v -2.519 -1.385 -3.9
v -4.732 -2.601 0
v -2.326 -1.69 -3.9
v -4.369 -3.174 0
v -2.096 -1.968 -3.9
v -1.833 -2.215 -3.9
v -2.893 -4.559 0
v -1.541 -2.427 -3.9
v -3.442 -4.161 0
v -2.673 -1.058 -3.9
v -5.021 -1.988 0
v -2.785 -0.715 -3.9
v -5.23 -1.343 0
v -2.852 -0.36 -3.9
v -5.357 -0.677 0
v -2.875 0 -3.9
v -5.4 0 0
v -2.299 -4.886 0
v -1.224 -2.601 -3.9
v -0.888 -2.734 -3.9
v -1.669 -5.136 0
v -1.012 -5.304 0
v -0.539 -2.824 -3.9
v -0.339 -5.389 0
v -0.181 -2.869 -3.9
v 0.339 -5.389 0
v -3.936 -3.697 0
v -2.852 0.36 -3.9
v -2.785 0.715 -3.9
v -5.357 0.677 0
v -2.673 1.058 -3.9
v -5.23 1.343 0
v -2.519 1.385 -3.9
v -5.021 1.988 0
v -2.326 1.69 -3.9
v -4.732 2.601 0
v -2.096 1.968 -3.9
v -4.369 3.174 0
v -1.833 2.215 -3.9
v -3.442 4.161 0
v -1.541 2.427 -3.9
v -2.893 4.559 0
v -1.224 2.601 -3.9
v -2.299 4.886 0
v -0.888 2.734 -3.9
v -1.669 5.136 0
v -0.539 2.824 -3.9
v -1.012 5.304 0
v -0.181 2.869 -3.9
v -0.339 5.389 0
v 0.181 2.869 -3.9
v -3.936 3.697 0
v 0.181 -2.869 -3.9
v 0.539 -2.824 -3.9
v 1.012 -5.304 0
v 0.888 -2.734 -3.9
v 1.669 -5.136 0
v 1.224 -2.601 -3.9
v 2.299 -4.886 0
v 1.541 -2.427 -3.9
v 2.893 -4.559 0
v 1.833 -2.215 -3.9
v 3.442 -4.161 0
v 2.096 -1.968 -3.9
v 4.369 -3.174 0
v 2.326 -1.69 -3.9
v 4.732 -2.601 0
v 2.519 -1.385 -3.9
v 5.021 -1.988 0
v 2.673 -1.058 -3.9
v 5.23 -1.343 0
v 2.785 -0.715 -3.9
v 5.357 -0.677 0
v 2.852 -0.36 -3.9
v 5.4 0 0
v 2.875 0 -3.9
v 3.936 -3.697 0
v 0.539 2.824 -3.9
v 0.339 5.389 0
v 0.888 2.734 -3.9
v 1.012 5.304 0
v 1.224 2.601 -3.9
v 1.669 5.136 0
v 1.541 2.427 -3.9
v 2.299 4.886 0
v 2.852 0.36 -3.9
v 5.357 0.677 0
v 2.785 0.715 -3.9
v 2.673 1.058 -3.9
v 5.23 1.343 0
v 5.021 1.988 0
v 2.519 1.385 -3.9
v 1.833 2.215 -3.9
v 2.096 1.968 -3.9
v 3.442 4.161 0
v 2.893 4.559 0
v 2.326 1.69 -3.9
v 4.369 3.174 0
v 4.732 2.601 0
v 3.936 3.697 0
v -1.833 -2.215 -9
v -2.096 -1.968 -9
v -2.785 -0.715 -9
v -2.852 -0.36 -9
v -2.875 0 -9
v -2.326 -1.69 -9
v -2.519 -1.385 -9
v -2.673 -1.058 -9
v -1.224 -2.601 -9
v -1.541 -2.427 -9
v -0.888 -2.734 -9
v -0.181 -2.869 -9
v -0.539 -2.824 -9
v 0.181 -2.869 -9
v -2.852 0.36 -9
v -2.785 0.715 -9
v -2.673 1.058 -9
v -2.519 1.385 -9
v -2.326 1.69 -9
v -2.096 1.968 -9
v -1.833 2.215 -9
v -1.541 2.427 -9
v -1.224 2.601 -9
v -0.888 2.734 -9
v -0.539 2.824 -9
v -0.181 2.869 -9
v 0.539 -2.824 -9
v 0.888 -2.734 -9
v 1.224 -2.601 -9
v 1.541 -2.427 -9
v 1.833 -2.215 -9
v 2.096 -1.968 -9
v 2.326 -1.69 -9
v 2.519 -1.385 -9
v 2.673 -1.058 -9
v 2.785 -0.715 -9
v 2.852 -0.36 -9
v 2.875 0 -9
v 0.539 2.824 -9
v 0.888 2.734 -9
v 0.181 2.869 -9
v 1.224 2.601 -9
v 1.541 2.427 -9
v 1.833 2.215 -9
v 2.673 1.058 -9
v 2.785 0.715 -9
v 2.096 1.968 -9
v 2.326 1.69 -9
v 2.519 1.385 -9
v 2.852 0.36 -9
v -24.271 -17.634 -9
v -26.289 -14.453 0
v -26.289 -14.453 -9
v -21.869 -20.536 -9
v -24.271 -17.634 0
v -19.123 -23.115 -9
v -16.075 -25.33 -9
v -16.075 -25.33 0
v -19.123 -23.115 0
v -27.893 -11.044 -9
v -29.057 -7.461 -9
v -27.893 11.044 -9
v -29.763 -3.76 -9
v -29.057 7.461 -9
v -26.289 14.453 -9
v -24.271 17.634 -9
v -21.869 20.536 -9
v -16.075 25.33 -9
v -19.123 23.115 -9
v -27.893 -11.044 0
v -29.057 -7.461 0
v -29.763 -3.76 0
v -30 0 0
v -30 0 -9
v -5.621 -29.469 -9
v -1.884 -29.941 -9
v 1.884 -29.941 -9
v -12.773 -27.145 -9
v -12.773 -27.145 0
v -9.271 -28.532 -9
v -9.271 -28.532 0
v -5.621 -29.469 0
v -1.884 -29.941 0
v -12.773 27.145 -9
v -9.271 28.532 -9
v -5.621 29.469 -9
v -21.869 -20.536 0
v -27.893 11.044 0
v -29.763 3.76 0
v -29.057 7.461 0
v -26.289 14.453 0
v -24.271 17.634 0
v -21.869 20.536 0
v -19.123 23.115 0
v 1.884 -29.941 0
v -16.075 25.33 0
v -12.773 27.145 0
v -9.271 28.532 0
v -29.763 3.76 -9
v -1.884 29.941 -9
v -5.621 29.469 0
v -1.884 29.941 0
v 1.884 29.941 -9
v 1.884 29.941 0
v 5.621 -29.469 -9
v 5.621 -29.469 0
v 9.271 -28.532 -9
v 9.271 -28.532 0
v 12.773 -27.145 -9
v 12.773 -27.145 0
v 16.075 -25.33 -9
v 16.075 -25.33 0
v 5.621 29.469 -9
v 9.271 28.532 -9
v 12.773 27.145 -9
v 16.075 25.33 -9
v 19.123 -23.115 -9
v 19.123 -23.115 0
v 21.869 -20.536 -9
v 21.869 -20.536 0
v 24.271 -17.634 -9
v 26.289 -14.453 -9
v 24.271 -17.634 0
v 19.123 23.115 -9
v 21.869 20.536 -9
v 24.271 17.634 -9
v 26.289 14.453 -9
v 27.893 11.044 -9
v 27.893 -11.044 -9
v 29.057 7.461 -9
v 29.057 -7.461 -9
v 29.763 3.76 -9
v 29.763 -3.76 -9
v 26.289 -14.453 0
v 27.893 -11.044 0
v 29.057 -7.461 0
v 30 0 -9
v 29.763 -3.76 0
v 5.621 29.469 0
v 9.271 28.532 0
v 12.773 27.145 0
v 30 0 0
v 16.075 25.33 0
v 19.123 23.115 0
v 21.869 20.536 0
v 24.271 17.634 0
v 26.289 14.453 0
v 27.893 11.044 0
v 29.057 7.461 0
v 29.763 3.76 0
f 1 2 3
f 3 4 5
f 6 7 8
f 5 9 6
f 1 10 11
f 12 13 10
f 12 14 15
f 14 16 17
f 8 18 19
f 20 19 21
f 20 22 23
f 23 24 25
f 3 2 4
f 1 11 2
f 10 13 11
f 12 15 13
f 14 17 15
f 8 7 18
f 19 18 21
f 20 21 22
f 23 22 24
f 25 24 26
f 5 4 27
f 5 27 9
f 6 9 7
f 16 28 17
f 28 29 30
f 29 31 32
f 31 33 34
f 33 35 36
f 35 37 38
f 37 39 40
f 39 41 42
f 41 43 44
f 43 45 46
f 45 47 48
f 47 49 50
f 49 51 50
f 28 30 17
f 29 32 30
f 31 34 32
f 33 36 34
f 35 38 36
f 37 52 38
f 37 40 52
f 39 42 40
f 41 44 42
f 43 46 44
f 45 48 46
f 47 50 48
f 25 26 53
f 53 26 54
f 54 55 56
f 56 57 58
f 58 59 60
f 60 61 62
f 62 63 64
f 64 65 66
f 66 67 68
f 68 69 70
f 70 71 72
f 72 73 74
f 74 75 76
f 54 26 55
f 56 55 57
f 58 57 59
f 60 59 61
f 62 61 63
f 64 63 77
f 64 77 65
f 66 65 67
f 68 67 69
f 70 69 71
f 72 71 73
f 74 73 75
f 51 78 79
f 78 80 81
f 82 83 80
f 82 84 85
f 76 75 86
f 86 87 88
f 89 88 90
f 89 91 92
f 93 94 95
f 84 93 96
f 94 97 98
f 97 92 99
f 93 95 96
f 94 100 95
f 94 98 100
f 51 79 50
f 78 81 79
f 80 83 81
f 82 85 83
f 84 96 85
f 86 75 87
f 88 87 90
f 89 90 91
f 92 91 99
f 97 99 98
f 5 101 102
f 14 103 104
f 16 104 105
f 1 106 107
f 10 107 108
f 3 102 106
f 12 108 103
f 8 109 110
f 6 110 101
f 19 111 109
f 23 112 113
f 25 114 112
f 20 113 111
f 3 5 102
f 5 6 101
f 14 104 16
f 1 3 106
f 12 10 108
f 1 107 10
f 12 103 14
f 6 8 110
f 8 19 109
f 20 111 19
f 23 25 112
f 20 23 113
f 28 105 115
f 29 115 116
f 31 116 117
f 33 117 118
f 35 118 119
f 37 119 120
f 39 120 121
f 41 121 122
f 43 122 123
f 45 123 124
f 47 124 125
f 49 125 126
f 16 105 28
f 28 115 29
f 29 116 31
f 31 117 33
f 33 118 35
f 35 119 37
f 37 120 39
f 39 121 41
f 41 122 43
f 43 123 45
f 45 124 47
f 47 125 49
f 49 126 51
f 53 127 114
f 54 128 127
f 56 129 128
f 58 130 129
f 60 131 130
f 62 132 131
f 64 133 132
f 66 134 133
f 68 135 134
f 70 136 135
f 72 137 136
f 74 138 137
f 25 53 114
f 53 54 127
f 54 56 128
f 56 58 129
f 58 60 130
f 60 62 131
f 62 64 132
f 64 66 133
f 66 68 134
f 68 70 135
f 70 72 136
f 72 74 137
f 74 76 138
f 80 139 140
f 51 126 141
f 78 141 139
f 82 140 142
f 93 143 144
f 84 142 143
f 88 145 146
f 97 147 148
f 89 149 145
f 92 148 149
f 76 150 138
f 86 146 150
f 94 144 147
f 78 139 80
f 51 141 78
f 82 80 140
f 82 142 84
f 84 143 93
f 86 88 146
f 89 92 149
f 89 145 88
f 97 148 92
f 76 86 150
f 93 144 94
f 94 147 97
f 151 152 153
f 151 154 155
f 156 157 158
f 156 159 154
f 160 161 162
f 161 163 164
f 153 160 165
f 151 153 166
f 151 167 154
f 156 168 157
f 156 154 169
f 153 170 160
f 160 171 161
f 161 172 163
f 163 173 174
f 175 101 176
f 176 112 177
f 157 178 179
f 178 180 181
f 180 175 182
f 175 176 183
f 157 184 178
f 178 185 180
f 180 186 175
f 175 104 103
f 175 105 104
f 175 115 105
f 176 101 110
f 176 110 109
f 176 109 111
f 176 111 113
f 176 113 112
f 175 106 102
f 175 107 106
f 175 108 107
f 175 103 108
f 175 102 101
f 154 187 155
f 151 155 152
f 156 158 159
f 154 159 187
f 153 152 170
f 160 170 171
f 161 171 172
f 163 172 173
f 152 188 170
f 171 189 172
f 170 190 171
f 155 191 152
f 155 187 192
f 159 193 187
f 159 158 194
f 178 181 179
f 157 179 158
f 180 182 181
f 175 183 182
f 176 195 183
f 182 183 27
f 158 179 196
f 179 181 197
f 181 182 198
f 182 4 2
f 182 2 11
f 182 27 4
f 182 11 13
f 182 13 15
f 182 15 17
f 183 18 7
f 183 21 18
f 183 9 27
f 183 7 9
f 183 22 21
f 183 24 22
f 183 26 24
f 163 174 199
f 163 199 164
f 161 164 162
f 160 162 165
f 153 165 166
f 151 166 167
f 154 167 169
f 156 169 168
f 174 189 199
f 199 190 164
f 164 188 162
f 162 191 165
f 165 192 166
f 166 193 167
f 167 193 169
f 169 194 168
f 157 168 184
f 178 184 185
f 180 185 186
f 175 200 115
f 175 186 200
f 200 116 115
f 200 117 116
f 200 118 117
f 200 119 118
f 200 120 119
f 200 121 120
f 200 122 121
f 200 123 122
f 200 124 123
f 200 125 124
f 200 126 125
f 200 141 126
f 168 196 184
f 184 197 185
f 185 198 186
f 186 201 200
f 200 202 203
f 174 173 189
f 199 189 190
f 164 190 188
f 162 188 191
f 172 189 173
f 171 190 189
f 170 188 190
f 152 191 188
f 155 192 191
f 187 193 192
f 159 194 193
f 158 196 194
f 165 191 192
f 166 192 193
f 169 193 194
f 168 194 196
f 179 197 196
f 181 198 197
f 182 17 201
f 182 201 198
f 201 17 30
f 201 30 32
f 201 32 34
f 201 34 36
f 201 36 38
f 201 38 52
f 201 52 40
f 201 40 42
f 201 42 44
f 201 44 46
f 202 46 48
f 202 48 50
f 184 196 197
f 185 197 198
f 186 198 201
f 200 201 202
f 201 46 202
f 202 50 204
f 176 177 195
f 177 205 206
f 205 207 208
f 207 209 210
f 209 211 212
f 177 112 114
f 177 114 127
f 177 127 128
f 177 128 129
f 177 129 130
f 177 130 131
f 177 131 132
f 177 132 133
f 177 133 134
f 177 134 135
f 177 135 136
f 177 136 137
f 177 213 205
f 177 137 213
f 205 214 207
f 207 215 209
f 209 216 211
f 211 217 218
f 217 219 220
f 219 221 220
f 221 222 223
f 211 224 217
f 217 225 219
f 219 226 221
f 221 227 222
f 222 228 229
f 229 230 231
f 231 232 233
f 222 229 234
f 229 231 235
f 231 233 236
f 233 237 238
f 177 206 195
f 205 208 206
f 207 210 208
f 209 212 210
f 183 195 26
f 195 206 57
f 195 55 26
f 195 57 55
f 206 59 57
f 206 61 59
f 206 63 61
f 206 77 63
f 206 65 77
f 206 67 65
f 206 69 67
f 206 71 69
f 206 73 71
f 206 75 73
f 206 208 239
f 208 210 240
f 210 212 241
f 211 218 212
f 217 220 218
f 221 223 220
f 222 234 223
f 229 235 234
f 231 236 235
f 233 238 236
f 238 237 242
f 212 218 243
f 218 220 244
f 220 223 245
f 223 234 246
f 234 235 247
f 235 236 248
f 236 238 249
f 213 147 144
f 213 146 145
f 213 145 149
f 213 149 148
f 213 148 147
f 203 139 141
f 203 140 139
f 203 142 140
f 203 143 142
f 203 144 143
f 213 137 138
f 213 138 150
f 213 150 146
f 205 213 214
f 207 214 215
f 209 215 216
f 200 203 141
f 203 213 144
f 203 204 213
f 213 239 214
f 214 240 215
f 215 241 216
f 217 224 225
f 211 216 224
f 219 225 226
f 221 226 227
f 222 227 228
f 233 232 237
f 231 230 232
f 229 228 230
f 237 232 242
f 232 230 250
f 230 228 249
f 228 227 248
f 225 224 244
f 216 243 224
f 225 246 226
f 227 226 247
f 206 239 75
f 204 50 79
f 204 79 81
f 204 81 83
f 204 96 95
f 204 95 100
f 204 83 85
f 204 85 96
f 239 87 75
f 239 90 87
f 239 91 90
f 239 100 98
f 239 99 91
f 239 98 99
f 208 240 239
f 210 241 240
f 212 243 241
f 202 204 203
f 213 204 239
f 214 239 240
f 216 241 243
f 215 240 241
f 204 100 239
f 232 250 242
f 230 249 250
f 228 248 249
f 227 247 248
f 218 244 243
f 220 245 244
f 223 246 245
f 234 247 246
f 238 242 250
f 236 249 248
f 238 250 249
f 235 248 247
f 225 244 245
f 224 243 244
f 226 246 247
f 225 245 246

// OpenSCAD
$fn = 50;

difference() {
	union() {
		translate(v = [0, 0, -9.0]) {
			cylinder(h = 9, r = 30.0);
		}
		#translate(v = [0, 0, -12.0]) {
			cylinder(h = 12, r = 2.875);
		}
	}
	union() {
		translate(v = [0, 0, 0]) {
			rotate(a = [0, 0, 0]) {
				difference() {
					union() {
						translate(v = [0, 0, -12.0]) {
							cylinder(h = 12, r = 2.6);
						}
						translate(v = [0, 0, -3.9]) {
							cylinder(h = 3.9, r1 = 2.875, r2 = 5.4);
						}
						translate(v = [0, 0, -12.0]) {
							cylinder(h = 12, r = 2.875);
						}
						translate(v = [0, 0, -12.0]) {
							cylinder(h = 12, r = 2.6);
						}
					}
					union();
				}
			}
		}
	}
}
